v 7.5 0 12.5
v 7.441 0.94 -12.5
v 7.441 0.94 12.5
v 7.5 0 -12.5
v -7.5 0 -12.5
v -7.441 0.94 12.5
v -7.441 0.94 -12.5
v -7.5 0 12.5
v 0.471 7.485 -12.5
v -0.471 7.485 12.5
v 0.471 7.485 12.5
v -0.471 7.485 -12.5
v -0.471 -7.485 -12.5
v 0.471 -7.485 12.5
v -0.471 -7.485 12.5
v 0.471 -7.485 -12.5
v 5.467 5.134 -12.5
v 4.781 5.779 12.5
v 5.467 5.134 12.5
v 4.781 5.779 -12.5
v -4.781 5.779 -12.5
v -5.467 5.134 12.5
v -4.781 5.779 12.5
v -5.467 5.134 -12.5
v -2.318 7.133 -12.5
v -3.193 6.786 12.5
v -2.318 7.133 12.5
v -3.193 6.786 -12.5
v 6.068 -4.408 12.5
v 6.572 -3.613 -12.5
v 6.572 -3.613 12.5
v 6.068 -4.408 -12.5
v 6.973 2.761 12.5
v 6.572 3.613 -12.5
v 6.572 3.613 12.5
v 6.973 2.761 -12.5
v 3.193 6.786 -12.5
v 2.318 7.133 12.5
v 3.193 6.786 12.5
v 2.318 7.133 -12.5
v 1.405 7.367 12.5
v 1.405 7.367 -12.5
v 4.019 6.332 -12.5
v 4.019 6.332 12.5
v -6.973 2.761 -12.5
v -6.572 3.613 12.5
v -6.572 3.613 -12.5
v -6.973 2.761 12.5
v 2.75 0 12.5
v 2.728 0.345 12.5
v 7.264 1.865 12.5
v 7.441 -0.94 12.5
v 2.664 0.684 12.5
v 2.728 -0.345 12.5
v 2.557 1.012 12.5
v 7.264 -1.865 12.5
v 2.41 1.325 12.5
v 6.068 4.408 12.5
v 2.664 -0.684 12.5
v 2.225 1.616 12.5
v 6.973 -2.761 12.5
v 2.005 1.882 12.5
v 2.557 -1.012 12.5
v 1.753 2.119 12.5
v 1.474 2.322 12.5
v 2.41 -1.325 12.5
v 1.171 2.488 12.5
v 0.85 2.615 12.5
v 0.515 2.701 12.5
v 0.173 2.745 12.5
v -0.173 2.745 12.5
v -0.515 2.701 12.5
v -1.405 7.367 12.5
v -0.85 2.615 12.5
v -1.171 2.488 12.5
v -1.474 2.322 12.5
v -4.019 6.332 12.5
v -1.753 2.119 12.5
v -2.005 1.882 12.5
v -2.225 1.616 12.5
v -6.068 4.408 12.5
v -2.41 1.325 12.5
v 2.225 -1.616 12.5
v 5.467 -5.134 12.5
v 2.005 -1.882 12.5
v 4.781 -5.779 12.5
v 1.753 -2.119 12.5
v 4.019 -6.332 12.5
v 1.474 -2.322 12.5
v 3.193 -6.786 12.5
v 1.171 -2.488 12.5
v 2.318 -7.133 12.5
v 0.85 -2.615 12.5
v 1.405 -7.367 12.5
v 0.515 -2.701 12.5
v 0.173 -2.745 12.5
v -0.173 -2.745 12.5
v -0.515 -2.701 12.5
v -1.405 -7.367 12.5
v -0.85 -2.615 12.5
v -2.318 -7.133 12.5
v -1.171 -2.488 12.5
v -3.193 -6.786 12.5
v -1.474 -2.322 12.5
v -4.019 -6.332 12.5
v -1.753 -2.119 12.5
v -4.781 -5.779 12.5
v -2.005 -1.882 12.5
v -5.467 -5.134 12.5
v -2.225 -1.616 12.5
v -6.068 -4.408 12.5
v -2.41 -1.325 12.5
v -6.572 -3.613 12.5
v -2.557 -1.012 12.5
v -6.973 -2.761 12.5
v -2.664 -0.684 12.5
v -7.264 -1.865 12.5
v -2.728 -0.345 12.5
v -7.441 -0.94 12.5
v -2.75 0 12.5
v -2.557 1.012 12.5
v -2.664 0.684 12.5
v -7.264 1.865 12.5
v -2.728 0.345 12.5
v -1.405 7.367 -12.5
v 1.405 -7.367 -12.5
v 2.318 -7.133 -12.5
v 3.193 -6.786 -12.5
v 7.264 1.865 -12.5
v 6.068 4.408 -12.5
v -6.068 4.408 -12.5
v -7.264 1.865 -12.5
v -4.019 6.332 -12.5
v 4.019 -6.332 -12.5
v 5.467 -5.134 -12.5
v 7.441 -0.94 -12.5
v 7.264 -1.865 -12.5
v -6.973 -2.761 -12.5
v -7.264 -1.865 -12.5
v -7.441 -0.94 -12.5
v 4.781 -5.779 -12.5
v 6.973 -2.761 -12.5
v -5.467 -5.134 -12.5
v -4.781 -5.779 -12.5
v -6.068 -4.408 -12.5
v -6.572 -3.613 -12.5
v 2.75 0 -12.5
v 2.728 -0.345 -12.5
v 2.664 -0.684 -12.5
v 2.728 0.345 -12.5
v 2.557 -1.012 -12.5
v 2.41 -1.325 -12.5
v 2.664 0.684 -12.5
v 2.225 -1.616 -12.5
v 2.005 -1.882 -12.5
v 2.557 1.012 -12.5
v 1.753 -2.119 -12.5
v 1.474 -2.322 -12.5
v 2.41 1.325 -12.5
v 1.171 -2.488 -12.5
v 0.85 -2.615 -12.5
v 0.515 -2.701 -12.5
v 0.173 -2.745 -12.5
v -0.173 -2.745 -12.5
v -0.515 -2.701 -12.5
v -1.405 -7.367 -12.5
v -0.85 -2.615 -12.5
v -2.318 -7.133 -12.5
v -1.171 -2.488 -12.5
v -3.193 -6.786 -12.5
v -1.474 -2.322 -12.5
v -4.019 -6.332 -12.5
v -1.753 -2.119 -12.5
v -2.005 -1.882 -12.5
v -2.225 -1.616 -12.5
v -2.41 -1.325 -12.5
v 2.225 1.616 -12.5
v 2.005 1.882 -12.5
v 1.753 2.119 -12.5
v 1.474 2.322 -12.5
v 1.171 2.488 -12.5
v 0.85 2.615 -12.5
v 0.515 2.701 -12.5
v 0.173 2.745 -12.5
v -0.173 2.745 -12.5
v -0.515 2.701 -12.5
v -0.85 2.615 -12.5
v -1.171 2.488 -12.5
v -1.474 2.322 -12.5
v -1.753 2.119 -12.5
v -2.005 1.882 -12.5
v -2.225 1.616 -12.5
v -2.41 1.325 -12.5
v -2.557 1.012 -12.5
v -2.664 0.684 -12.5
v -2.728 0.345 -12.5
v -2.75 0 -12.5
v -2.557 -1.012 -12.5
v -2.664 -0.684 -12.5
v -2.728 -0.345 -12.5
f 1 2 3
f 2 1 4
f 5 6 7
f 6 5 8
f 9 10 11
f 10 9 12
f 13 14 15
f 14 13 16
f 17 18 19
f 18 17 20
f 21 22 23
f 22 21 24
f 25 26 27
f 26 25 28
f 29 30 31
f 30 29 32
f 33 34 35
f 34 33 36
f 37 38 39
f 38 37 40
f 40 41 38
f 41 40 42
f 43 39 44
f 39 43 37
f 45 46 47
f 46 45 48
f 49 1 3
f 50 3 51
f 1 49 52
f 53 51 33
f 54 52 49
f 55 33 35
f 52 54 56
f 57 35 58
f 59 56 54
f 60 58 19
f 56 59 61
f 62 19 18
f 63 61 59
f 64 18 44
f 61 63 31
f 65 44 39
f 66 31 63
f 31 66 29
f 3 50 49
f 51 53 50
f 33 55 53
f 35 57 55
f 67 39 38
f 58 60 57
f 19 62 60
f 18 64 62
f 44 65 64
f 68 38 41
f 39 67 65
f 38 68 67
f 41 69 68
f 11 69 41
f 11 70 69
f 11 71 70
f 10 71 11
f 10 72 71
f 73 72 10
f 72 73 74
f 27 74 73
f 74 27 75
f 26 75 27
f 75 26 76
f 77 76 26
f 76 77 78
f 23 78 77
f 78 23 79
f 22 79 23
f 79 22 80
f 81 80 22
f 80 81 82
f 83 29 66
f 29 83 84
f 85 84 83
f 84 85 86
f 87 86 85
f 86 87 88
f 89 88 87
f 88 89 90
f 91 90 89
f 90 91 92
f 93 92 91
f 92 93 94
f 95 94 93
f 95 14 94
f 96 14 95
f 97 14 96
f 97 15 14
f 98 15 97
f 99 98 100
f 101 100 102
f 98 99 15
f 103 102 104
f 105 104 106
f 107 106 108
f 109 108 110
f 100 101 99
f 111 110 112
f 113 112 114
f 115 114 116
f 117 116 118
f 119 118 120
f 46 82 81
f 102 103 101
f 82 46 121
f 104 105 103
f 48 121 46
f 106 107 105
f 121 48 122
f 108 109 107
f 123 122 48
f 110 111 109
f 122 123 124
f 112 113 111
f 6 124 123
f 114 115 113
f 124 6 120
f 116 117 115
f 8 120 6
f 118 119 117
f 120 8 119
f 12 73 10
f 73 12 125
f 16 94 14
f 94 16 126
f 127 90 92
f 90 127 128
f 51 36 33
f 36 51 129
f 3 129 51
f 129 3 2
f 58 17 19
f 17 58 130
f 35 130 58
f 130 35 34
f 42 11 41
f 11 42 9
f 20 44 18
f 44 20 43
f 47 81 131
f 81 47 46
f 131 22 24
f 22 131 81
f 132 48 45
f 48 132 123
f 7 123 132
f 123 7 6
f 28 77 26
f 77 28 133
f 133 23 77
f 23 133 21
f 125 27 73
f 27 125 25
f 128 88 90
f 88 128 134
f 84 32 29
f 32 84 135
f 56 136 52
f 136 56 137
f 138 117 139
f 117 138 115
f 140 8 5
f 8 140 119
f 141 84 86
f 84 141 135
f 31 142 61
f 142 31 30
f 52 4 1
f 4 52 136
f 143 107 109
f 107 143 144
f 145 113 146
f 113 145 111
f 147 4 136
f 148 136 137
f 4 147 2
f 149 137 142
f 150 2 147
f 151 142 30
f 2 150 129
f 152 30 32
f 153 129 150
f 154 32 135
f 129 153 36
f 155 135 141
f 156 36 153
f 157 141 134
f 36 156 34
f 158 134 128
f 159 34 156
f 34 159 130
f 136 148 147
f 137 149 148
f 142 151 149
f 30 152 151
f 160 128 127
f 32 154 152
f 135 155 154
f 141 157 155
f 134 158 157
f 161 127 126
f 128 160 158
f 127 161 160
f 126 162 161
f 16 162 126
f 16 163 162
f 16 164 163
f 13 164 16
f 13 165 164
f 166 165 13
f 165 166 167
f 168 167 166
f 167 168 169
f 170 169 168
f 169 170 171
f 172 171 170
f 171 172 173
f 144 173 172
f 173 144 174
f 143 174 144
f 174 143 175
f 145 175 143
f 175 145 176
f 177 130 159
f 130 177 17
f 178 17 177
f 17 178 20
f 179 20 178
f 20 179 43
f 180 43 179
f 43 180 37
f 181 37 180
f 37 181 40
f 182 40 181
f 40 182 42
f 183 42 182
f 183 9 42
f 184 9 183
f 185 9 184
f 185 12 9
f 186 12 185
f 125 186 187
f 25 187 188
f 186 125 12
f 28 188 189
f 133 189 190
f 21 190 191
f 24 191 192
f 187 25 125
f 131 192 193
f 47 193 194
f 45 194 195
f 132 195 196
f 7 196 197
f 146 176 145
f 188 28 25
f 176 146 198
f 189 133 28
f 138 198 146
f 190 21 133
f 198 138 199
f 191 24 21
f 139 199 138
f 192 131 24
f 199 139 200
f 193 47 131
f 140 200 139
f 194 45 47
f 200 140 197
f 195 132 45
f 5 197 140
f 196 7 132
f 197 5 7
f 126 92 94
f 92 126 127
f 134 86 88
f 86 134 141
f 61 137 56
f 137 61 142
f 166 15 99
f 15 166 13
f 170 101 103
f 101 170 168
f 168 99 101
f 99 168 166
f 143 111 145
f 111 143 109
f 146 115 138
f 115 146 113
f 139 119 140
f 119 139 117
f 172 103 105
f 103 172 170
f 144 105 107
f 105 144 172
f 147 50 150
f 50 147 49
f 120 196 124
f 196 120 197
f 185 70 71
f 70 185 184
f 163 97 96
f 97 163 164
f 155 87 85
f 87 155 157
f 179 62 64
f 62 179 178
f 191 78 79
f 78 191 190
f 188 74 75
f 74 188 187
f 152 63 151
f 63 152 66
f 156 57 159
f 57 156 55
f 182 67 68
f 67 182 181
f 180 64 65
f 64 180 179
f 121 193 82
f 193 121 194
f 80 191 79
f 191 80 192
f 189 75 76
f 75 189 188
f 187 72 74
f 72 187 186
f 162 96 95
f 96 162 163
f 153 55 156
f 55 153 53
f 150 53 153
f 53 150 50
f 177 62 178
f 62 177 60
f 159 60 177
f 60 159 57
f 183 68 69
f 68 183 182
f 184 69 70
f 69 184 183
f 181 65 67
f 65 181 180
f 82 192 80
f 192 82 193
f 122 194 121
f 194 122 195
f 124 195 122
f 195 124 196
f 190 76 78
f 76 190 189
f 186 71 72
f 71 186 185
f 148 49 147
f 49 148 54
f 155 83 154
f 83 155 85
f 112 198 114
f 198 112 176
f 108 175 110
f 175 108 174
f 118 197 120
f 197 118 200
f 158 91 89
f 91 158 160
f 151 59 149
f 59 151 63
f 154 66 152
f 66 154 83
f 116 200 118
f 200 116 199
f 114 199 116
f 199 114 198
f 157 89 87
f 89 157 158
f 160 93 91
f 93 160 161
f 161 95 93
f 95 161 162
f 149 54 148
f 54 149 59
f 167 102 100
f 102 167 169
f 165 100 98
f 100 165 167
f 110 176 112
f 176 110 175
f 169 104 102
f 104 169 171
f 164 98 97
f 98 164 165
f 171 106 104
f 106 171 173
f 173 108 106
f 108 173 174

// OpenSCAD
$fn = 50;


difference() {
	union() {
		translate(v = [0, 0, -12.5000000000]) {
			cylinder(h = 25, r = 7.5000000000);
		}
	}
	union() {
		translate(v = [0, 0, -100.0000000000]) {
			cylinder(h = 200, r = 2.7500000000);
		}
	}
}
